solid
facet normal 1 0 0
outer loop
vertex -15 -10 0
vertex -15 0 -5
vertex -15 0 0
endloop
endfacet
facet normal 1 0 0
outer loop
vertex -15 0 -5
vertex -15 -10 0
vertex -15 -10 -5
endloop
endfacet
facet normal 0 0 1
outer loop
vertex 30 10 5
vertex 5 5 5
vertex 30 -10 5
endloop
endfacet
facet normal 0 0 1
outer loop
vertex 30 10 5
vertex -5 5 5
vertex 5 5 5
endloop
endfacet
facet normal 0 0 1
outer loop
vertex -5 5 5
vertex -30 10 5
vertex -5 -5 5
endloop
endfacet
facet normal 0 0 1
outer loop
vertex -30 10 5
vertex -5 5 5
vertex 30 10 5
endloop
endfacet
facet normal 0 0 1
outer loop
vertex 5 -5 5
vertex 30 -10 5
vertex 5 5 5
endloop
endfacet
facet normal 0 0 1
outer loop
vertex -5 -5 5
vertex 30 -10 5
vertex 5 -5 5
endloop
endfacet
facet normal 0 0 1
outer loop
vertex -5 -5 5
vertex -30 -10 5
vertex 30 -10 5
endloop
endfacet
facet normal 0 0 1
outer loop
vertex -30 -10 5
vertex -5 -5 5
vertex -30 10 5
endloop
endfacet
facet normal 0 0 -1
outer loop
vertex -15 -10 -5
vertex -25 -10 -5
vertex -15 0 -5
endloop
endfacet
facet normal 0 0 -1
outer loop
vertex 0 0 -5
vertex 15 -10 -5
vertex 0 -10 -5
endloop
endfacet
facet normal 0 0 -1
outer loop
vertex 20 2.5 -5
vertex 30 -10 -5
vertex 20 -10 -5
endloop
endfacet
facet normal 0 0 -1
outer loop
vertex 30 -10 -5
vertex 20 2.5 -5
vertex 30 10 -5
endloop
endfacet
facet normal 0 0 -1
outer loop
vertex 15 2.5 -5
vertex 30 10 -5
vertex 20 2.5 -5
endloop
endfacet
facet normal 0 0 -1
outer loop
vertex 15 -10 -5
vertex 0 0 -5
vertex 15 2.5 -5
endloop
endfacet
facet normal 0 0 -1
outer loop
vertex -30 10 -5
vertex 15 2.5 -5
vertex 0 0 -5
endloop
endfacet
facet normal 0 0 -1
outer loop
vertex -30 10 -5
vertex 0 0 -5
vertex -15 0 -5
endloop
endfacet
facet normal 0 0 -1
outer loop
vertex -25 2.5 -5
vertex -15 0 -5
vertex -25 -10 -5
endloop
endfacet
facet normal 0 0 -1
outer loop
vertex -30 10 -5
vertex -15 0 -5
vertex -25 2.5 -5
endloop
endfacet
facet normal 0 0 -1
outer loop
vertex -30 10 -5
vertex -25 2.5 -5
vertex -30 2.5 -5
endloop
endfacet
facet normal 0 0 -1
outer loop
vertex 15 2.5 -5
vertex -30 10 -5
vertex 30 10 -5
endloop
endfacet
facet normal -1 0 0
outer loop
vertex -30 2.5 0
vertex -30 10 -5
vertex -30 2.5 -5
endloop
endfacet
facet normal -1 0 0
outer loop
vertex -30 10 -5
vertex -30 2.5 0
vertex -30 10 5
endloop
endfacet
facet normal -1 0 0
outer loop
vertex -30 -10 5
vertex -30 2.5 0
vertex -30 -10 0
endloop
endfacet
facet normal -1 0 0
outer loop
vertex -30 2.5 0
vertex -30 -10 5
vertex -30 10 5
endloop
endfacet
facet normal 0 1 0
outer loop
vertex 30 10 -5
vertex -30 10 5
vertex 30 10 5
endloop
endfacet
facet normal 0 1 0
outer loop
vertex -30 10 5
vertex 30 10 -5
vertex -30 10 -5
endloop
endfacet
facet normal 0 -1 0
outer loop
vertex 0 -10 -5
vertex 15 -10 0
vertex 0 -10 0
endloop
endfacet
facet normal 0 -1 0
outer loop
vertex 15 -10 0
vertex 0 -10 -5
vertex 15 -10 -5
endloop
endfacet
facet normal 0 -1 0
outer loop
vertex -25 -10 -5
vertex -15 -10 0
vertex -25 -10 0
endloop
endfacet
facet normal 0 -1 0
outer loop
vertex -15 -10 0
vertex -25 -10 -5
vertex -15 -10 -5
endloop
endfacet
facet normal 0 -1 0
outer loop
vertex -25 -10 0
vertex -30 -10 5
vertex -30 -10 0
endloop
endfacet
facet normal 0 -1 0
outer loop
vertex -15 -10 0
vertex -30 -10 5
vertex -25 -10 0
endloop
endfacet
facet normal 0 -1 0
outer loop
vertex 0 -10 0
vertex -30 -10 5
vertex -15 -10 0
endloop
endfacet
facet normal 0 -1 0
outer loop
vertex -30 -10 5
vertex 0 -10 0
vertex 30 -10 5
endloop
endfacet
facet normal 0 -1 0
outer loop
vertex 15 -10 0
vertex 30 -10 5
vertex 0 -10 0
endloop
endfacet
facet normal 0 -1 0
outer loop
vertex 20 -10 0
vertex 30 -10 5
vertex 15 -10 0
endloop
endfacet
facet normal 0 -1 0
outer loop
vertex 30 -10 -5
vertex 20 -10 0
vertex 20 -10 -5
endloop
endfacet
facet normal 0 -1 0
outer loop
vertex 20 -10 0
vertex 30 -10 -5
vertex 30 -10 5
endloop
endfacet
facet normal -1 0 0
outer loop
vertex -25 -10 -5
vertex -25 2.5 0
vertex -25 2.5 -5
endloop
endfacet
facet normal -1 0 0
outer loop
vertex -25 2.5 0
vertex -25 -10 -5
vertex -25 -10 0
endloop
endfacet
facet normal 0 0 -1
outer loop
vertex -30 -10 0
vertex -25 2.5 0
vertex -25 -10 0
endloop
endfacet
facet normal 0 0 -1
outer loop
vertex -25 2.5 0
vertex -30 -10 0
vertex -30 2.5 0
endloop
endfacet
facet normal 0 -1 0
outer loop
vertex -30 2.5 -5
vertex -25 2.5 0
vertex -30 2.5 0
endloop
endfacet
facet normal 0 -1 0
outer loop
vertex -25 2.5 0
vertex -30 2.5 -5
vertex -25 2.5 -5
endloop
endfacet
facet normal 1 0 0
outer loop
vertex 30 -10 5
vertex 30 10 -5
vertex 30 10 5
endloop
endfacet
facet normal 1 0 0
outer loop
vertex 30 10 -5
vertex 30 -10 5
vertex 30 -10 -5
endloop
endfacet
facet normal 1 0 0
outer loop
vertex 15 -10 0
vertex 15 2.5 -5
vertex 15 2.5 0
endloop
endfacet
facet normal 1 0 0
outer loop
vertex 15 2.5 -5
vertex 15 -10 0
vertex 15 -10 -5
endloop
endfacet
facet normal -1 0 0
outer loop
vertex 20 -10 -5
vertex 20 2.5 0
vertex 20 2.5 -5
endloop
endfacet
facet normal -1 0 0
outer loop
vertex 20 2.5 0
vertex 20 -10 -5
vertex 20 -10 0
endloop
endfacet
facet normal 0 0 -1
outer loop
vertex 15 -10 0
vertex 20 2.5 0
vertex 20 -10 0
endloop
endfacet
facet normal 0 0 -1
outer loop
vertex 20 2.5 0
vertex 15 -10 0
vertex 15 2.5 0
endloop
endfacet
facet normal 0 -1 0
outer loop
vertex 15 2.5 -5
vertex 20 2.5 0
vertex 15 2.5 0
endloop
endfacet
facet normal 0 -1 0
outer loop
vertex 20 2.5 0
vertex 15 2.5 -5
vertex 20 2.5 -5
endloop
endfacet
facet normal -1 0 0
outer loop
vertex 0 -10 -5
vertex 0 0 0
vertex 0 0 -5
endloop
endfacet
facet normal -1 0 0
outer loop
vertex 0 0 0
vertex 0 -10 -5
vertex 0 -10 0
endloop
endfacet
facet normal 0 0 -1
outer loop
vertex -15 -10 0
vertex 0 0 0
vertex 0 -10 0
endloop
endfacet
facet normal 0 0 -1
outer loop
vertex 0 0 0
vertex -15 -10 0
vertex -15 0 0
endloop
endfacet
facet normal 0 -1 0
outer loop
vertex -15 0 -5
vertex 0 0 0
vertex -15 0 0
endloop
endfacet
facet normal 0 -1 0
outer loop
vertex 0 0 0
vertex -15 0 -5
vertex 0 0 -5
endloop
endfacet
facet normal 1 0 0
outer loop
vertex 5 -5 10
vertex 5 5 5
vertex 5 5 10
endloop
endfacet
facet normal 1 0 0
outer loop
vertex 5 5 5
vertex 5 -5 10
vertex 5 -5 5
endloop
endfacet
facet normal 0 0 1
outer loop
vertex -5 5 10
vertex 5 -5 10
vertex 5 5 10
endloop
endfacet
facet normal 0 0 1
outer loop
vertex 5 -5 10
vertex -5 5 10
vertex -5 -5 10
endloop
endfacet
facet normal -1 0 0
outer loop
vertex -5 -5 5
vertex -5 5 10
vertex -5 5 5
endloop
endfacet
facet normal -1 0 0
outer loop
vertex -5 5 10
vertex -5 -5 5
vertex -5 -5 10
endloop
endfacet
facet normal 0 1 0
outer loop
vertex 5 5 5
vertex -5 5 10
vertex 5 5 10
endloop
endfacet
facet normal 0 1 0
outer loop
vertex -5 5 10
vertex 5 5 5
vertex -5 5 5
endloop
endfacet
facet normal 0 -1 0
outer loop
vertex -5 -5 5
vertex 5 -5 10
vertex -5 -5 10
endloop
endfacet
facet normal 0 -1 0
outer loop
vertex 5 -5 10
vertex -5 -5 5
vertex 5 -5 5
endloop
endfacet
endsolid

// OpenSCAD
// Define dimensions for the components
module central_block() {
    difference() {
        cube([30, 20, 10], center = true); // Main block
        translate([-15, -7, -5]) // Adjusted cutout width to match original proportions
            cube([30, 14, 10], center = true); // Wider U-shaped cutout
    }
}

module side_block() {
    difference() {
        cube([15, 20, 10], center = true); // Main block
        translate([-7.5, -5, -5]) // Adjusted cutout depth to match original design
            cube([10, 15, 10], center = true); // Deeper rectangular cutout
    }
}

module connector_block() {
    difference() {
        cube([10, 10, 10], center = true); // Main block
        translate([-5, -2.5, -5]) // Adjusted protruding section dimensions
            cube([10, 7, 10], center = true); // Larger protruding section
    }
}

// Assemble the components
module assembly() {
    // Layer 1: Side blocks
    translate([-22.5, 0, 0])
        side_block();
    translate([22.5, 0, 0])
        side_block();

    // Layer 2: Central block
    central_block();

    // Layer 3: Connector block
    translate([0, 0, 5])
        connector_block();
}

// Render the assembly
assembly();
